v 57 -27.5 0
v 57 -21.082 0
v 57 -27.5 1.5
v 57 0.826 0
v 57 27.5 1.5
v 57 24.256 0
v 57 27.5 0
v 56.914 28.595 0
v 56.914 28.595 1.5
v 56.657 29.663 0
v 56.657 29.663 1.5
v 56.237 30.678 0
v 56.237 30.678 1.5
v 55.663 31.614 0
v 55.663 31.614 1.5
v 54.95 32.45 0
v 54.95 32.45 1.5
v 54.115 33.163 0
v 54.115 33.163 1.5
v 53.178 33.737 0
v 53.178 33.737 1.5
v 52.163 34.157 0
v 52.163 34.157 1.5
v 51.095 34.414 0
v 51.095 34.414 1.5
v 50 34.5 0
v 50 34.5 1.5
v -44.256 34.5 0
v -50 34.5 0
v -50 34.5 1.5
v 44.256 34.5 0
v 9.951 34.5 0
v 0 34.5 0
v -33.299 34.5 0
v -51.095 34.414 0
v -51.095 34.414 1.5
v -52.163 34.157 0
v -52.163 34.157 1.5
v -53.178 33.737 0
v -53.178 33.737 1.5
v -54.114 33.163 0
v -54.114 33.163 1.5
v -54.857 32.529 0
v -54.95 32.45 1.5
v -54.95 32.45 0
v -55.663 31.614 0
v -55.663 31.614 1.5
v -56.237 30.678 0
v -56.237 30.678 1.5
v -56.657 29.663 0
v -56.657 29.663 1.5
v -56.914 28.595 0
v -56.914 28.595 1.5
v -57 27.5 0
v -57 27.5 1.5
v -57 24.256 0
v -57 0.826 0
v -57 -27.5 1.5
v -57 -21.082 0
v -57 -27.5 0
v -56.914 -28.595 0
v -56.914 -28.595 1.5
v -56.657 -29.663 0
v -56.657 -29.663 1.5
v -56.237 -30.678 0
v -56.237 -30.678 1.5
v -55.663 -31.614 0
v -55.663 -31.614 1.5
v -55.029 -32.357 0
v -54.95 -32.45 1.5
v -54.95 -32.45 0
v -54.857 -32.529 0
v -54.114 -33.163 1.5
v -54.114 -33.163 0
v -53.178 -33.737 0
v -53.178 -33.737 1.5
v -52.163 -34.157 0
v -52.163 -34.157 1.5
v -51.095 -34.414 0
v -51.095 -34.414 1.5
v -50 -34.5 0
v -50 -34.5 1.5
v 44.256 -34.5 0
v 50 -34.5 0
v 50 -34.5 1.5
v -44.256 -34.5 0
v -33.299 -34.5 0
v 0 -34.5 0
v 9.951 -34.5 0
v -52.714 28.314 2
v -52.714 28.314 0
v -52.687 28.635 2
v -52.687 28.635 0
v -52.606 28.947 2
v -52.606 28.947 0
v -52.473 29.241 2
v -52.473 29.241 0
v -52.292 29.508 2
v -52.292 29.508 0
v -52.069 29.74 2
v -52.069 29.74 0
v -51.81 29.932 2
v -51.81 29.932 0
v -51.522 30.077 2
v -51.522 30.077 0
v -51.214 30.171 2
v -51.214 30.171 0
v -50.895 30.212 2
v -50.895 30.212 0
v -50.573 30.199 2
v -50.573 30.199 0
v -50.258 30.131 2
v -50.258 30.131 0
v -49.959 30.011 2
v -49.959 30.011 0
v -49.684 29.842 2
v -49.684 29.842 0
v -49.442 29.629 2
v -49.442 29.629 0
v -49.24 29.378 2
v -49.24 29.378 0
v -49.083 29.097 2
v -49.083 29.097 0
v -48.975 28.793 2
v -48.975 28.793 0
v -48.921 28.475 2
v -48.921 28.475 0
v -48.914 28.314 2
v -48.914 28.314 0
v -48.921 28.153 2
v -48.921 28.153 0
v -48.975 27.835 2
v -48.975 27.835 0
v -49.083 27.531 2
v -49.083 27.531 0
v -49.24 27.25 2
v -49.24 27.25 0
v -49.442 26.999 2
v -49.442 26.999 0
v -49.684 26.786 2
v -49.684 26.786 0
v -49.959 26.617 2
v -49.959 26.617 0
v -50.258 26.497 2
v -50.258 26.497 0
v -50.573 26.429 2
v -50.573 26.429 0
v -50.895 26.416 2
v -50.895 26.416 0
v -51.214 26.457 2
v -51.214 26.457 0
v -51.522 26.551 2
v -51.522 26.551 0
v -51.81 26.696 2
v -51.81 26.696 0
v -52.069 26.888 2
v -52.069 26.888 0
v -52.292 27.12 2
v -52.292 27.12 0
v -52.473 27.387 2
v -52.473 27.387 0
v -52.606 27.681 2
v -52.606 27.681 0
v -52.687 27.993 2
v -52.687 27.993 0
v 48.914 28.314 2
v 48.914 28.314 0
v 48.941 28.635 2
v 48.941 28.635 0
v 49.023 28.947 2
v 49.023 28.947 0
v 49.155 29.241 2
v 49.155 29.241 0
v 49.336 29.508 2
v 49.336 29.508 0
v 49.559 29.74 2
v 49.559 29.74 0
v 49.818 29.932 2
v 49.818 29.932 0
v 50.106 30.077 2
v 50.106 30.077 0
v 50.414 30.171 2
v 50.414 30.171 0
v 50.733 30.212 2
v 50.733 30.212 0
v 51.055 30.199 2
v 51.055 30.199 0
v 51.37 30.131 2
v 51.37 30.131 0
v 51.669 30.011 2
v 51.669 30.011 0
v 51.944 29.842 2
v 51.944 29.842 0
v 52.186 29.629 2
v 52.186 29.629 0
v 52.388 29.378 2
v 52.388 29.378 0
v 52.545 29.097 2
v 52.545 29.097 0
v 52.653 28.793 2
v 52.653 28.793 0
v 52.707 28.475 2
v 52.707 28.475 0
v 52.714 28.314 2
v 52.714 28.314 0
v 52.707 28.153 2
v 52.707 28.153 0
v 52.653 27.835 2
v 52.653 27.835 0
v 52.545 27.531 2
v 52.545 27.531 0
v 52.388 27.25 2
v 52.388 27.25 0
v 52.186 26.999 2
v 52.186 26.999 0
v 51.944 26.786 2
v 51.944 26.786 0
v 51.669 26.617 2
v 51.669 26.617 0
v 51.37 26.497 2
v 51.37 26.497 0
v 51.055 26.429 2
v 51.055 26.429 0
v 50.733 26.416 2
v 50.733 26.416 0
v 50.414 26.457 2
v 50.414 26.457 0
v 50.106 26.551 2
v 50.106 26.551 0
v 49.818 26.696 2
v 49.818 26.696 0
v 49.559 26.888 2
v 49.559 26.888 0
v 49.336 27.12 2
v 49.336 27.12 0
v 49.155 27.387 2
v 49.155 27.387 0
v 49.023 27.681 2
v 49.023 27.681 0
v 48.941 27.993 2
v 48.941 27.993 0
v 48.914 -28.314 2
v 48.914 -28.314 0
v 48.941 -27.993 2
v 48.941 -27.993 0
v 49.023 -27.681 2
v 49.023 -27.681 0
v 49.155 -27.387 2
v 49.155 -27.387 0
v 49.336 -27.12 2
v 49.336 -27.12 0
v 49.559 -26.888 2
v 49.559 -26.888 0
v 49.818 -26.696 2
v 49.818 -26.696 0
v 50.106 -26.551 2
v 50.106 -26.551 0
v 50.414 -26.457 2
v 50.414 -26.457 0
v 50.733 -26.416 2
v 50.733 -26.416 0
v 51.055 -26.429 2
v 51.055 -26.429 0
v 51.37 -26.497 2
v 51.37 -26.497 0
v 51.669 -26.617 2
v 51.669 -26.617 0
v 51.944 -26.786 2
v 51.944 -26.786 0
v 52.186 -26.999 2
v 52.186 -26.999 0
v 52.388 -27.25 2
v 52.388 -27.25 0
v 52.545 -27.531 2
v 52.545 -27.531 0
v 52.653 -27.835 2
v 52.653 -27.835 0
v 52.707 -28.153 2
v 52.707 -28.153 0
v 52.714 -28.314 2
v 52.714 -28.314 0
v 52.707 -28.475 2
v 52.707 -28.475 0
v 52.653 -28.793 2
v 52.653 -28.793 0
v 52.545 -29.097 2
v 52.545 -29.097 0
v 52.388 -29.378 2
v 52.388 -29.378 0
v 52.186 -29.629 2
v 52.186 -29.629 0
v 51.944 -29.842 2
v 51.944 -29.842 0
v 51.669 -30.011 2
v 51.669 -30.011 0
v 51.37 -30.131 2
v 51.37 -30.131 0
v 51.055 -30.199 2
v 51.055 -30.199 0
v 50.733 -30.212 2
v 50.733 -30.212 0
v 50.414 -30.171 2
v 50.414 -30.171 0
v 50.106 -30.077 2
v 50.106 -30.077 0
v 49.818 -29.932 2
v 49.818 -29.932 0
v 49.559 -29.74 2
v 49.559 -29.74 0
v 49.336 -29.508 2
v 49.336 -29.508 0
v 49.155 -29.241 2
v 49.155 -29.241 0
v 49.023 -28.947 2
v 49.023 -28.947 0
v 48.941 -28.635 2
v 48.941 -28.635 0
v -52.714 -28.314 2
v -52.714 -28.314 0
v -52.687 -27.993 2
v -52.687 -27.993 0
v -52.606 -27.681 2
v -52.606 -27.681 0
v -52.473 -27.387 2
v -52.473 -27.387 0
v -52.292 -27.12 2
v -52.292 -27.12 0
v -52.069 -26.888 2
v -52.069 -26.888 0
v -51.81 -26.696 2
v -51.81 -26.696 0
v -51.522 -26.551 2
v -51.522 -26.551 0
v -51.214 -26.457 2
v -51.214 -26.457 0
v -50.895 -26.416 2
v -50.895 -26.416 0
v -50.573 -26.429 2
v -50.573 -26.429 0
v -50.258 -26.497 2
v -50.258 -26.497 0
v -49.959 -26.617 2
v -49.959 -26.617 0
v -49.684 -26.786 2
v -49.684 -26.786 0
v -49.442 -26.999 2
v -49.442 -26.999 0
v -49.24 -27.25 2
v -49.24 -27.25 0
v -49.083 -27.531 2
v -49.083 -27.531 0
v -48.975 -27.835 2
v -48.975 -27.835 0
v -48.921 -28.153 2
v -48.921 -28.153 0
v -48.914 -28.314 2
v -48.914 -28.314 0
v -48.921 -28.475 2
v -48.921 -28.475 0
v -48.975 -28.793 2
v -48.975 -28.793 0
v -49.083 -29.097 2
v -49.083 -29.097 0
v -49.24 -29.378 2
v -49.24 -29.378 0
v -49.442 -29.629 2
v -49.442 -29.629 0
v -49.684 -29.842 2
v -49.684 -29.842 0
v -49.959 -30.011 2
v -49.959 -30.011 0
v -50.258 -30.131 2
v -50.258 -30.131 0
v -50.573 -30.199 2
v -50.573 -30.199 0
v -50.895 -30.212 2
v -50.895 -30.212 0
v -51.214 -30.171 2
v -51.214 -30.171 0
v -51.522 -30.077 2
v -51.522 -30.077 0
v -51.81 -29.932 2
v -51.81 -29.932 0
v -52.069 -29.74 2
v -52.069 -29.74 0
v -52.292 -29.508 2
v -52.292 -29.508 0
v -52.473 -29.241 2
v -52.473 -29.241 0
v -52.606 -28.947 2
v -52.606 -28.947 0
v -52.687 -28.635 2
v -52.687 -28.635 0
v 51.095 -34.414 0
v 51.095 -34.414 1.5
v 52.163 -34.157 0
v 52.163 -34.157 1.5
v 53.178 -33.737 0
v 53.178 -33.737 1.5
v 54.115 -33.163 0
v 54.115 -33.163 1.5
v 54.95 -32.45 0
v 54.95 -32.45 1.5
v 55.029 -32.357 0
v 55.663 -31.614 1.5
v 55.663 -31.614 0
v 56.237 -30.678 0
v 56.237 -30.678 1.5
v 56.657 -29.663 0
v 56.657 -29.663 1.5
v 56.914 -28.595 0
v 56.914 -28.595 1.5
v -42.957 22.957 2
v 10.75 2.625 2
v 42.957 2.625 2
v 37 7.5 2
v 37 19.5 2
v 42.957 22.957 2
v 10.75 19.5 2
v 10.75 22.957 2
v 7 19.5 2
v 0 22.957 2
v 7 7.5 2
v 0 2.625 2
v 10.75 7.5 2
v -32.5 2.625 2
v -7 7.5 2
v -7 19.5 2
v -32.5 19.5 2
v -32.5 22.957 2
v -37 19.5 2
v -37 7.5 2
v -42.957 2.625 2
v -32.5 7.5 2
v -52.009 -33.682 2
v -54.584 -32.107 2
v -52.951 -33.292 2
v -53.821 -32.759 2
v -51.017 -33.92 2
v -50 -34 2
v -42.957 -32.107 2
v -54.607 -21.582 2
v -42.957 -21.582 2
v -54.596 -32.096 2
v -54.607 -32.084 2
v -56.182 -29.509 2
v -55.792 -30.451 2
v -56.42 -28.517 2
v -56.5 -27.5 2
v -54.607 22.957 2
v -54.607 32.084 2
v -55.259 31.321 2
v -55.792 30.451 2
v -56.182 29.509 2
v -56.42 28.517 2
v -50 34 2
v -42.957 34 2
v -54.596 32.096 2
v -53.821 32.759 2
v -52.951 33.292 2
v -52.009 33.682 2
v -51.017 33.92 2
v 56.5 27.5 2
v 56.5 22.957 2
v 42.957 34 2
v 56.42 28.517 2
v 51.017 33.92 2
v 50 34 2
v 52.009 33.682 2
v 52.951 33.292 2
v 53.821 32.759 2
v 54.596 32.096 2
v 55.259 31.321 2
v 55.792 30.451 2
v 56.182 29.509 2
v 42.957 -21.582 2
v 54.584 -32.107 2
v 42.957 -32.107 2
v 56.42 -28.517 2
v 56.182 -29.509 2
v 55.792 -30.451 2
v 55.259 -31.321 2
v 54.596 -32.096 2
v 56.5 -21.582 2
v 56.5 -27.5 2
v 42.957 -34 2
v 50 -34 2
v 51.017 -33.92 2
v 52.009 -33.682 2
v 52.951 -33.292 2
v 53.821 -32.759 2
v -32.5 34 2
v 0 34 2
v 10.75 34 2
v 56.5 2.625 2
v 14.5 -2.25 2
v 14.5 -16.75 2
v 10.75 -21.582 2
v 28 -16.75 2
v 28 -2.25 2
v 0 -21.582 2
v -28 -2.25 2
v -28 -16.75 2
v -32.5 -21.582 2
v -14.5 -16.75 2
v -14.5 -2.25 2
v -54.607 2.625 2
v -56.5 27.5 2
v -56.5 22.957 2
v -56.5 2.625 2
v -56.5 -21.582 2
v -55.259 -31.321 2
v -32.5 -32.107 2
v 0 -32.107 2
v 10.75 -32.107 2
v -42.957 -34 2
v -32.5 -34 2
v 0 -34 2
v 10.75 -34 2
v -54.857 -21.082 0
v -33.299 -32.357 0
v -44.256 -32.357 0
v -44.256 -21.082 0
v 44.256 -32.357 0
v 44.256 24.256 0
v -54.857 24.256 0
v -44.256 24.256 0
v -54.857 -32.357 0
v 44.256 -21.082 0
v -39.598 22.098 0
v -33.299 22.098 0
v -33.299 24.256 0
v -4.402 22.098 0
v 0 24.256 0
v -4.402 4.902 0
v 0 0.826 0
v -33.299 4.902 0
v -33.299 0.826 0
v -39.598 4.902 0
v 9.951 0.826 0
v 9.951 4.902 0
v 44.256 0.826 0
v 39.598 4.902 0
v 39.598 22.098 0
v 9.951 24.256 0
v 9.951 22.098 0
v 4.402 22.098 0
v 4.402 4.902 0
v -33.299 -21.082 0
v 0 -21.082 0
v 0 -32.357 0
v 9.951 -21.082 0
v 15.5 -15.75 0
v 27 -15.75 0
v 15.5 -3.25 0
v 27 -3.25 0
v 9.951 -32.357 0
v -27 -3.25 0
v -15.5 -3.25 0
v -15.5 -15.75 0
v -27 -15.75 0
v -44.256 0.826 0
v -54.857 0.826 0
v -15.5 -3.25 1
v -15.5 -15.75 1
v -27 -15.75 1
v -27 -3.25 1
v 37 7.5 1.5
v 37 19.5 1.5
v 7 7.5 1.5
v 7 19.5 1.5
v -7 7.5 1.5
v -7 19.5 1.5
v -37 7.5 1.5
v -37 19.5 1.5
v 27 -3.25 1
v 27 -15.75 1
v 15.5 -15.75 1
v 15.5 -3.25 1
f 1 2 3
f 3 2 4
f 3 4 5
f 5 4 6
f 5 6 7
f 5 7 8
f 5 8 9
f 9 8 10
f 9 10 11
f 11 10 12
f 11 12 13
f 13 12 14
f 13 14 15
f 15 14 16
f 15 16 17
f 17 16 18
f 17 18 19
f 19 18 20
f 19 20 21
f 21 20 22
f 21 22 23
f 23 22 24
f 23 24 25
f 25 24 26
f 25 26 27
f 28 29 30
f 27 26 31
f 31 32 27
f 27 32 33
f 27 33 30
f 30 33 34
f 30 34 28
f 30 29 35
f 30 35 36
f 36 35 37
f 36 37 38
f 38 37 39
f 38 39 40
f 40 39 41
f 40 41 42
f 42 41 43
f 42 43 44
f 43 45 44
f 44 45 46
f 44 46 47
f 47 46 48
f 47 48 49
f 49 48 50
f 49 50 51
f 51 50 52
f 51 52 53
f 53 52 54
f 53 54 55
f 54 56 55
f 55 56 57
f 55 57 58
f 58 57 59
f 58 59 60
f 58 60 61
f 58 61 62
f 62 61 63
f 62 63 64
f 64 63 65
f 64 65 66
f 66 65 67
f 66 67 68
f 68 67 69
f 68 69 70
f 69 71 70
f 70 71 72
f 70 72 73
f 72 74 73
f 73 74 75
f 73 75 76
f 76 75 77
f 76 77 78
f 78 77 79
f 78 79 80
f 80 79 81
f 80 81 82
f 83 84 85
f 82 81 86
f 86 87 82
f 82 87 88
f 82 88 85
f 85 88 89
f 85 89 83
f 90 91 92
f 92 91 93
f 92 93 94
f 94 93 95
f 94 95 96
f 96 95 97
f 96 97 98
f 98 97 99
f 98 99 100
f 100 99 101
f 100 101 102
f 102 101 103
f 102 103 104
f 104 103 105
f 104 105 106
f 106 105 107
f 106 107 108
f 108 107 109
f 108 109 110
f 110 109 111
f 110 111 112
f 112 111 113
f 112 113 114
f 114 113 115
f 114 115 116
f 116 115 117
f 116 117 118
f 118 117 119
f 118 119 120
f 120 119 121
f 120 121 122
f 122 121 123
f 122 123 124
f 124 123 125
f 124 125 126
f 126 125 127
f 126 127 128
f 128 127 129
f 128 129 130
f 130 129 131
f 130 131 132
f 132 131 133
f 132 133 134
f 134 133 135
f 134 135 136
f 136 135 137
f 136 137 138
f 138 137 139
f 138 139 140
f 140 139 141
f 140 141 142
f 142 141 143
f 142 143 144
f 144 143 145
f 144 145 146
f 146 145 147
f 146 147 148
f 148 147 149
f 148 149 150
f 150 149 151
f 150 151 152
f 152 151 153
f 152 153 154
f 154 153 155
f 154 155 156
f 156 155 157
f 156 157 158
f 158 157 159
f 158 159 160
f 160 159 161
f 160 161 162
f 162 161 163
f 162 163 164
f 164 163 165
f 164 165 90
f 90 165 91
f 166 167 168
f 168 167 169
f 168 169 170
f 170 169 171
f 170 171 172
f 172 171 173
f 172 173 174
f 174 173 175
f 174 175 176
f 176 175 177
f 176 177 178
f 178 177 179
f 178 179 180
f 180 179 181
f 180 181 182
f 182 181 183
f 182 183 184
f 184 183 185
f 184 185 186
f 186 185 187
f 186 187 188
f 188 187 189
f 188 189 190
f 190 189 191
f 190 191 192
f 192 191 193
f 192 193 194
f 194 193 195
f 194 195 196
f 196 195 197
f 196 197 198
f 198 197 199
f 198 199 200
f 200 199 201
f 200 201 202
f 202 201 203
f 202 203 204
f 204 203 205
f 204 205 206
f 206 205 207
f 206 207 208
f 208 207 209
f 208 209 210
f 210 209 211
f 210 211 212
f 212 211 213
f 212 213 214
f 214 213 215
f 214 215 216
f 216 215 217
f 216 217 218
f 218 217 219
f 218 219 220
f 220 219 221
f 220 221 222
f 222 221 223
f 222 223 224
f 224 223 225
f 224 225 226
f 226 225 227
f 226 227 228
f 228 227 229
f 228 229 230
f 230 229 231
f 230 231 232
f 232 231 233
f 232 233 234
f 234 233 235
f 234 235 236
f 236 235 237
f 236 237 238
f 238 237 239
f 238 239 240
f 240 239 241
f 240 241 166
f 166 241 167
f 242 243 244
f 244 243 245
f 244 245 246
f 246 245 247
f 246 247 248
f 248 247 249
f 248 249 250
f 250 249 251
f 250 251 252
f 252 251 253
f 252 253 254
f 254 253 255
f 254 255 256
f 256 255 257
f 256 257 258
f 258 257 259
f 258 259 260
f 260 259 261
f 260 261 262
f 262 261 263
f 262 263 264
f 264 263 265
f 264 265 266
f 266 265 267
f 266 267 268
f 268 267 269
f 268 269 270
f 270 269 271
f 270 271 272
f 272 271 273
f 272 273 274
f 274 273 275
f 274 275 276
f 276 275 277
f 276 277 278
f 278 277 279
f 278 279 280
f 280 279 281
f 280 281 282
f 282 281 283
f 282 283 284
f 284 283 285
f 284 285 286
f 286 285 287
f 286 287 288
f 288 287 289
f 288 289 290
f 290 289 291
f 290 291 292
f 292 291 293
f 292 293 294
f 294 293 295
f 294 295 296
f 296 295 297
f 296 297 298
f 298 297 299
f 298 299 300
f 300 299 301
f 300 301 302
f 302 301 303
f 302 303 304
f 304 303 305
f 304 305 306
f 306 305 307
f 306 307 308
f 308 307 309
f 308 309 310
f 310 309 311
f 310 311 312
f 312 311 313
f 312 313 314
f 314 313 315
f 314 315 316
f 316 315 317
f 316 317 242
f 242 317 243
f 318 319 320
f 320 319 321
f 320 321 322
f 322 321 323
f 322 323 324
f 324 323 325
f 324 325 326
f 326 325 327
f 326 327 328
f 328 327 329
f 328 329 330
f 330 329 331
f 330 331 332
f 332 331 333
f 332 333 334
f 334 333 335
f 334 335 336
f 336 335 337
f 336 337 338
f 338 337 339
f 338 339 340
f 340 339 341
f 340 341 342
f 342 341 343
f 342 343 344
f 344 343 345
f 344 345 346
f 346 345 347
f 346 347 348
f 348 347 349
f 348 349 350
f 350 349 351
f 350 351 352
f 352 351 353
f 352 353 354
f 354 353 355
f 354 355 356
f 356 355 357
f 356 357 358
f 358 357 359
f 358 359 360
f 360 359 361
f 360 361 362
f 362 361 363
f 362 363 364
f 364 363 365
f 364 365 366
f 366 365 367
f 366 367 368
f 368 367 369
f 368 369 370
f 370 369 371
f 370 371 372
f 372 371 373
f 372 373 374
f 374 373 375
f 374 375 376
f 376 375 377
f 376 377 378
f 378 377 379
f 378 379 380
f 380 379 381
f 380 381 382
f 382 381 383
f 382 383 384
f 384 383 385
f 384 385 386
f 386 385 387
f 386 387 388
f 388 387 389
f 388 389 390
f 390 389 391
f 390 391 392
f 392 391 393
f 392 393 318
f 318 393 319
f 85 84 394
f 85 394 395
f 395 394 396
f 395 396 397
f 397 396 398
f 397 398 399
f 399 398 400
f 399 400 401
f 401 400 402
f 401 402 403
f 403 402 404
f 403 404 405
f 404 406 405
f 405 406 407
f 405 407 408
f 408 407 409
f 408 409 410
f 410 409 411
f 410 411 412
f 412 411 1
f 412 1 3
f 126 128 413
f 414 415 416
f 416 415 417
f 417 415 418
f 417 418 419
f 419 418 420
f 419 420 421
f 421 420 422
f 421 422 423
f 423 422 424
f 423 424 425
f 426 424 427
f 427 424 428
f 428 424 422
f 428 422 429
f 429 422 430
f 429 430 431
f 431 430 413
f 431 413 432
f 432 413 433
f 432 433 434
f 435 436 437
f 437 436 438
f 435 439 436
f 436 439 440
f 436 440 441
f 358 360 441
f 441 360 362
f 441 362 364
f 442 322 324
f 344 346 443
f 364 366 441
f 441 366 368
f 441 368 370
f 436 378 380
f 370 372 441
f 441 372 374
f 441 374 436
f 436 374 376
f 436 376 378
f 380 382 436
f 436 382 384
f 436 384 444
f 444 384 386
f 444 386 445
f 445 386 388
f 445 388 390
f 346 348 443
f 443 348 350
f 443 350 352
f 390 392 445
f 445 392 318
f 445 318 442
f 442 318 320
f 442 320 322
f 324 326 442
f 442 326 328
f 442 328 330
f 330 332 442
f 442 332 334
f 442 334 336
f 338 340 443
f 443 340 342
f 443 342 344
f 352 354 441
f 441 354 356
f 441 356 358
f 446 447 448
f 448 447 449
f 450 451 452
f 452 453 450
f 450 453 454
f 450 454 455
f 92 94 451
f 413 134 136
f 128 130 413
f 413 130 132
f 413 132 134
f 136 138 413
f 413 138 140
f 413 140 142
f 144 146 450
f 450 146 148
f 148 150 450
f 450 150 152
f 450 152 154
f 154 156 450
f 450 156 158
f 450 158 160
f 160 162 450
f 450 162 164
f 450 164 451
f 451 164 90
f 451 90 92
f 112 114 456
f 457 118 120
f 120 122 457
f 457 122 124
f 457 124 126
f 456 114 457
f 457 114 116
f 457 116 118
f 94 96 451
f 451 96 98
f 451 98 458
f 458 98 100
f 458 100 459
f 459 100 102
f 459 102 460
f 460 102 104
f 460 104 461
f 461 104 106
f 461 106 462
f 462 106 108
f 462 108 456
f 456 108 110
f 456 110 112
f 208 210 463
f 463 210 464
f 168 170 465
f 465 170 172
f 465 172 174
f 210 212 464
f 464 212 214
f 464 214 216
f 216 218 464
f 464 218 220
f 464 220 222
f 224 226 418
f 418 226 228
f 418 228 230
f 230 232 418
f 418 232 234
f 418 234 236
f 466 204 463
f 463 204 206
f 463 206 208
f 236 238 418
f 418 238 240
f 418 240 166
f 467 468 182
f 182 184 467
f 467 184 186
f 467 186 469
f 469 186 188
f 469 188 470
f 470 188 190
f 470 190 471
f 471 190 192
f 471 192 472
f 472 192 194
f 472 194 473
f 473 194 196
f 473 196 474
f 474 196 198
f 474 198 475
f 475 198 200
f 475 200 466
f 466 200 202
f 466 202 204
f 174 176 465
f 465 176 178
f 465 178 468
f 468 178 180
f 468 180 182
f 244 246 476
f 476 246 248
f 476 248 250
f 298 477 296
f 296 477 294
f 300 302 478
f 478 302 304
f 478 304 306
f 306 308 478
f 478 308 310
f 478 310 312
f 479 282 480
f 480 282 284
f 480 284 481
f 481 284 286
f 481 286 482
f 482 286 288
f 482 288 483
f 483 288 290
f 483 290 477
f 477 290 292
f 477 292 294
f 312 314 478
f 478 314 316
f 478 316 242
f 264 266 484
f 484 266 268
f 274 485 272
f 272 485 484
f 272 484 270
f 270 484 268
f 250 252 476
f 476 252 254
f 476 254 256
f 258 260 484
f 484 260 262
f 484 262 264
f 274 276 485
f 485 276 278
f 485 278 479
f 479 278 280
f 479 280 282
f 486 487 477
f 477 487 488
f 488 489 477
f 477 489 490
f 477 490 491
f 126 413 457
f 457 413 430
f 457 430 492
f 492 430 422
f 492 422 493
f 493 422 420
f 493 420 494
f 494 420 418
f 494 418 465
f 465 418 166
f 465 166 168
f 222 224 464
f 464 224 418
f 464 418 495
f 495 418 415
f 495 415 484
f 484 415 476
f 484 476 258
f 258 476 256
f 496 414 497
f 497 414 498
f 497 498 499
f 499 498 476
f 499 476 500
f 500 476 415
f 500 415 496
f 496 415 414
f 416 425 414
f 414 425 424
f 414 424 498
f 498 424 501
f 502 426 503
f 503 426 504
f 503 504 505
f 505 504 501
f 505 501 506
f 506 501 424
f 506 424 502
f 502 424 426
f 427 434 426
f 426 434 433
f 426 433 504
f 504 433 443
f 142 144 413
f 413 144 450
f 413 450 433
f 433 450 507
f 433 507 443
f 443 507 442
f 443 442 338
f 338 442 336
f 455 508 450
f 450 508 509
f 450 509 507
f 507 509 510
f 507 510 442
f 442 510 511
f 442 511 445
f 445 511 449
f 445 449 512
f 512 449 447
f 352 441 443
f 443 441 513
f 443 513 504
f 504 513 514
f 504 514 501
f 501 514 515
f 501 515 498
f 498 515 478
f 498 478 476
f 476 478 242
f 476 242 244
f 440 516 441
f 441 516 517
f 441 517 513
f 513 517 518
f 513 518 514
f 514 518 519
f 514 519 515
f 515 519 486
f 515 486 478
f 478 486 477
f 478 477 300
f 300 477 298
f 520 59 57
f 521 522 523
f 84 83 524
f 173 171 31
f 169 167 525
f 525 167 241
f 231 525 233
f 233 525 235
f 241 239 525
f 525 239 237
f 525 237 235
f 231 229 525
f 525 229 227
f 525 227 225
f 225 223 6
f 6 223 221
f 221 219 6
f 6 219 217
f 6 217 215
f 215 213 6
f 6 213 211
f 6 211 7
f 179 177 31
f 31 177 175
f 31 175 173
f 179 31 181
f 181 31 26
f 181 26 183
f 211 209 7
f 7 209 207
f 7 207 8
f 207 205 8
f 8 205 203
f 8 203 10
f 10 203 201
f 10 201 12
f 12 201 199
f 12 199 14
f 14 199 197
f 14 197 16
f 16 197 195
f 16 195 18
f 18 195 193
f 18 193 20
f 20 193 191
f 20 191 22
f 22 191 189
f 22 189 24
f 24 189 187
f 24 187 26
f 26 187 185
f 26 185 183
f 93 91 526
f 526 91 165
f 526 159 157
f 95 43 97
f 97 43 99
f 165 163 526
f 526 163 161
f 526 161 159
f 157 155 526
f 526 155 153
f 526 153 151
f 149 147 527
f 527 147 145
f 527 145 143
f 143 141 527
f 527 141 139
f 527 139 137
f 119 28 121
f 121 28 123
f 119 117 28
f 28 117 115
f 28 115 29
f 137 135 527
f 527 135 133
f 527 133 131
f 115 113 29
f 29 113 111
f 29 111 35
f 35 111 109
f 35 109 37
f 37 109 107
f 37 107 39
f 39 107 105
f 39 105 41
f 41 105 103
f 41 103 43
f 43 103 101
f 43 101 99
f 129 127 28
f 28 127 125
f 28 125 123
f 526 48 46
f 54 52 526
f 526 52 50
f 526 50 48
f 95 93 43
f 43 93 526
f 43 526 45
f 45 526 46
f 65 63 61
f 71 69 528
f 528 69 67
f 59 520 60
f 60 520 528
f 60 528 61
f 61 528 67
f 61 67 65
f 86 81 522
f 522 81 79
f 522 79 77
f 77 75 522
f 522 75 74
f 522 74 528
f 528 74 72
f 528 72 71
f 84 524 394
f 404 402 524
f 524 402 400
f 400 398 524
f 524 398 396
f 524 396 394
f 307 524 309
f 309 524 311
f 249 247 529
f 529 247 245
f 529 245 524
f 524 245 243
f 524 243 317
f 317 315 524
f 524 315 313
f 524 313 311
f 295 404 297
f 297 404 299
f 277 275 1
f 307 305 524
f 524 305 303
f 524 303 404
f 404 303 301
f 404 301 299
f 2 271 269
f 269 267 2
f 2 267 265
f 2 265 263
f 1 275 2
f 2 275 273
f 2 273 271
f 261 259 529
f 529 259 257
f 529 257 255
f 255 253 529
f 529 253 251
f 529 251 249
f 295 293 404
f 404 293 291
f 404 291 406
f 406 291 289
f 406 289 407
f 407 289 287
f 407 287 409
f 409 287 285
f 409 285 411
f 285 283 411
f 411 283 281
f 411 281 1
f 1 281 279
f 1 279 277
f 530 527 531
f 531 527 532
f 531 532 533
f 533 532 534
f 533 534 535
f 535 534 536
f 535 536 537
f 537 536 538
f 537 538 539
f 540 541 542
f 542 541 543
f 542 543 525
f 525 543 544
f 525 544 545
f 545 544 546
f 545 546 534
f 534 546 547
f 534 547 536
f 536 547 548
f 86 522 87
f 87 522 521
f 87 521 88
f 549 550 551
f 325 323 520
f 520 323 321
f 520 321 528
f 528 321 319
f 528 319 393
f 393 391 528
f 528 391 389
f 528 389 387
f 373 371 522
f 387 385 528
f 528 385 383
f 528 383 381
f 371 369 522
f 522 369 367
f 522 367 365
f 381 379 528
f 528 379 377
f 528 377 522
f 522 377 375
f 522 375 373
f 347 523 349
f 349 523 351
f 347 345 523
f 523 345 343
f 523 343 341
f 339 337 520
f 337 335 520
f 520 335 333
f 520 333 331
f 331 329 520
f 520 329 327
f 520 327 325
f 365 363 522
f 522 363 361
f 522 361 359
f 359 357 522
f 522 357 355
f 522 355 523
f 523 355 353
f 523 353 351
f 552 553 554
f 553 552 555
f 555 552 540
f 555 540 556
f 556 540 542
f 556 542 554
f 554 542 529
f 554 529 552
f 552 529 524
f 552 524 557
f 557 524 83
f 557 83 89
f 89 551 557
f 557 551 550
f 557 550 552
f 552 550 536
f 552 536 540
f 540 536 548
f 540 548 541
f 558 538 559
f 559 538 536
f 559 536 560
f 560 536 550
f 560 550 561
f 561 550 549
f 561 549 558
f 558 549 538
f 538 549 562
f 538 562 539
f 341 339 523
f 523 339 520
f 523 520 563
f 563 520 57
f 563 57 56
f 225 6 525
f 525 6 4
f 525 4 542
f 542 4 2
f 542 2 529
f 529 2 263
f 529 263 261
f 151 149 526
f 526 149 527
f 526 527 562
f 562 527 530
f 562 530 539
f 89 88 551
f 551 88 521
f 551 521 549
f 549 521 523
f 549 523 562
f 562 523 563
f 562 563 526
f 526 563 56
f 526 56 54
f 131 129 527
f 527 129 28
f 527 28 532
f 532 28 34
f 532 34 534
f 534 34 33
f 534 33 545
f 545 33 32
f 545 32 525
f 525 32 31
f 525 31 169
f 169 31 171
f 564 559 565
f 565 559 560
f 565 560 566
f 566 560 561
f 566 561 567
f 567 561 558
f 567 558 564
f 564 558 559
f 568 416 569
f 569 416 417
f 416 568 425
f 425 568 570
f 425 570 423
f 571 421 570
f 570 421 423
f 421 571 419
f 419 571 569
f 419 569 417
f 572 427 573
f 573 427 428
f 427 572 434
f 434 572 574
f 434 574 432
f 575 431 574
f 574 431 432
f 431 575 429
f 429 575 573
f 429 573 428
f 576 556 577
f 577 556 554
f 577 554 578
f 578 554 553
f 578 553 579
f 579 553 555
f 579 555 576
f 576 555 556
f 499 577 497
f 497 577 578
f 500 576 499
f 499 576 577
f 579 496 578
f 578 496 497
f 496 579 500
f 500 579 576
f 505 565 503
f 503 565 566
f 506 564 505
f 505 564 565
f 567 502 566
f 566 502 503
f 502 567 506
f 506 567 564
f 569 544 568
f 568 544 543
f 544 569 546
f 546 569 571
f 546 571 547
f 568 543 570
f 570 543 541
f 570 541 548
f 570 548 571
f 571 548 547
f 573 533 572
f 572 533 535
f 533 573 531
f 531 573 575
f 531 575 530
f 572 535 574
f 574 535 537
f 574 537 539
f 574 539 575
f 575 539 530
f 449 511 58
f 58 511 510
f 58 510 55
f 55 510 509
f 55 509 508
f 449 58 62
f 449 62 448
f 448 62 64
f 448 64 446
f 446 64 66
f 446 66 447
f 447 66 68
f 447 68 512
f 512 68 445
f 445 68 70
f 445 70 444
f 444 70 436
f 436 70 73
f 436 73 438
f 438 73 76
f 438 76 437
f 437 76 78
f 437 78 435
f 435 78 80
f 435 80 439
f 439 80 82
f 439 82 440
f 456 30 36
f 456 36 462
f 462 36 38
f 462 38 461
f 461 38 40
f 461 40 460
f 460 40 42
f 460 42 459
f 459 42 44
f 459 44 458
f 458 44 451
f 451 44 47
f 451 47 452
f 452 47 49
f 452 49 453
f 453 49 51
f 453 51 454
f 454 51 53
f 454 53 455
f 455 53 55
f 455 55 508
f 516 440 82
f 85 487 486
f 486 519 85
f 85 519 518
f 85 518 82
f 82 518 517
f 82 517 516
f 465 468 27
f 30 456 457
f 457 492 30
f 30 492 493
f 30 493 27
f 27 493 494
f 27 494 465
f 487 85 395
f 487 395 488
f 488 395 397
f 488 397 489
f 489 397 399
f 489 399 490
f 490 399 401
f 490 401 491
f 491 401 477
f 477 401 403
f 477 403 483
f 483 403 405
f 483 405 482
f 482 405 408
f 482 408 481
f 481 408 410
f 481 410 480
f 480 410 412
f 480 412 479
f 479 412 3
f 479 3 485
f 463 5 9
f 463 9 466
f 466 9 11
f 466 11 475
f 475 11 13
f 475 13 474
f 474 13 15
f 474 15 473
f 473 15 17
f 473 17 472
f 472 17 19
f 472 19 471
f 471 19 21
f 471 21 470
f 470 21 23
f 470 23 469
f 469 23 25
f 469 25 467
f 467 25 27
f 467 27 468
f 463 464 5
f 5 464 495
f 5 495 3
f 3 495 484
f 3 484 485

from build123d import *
from OCP.BRepFilletAPI import BRepFilletAPI_MakeChamfer

# Parameters (mm, degrees)
SKETCH1_R           = 1.9
BOSS_EXTRUDE1_DEPTH = 2
SKETCH6_W           = 11.5
SKETCH6_H           = 12.5
SKETCH6_W_2         = 30
SKETCH6_H_2         = 12
CUT_EXTRUDE2_DEPTH  = 2
CHAMFER4_SIZE       = 1
CHAMFER5_SIZE       = 1.5
CHAMFER5_SIZE2      = 2.598076211
CHAMFER6_SIZE       = 0.5


with BuildPart() as part:
    # Sketch1 → Boss-Extrude1 (new body)
    with BuildSketch(Plane.XY):
        with BuildLine():
            Line((-57, 27.5), (-57, -27.5))
            ThreePointArc((-57, -27.5), (-54.949747468, -32.449747468), (-50, -34.5))
            Line((-50, -34.5), (50, -34.5))
            ThreePointArc((50, -34.5), (54.949747468, -32.449747468), (57, -27.5))
            Line((57, -27.5), (57, 27.5))
            ThreePointArc((57, 27.5), (54.949747468, 32.449747468), (50, 34.5))
            Line((50, 34.5), (-50, 34.5))
            ThreePointArc((-50, 34.5), (-54.949747468, 32.449747468), (-57, 27.5))
        make_face()
        with Locations((-50.814035536, 28.314035536)):
            Circle(SKETCH1_R, mode=Mode.SUBTRACT)
        with Locations((50.814035536, 28.314035536)):
            Circle(SKETCH1_R, mode=Mode.SUBTRACT)
        with Locations((50.814035536, -28.314035536)):
            Circle(SKETCH1_R, mode=Mode.SUBTRACT)
        with Locations((-50.814035536, -28.314035536)):
            Circle(SKETCH1_R, mode=Mode.SUBTRACT)
    extrude(amount=BOSS_EXTRUDE1_DEPTH)

    # Sketch6 → Cut-Extrude2 (cut)
    with BuildSketch(Plane.XY.offset(2)):
        with Locations((-21.25, -9.5)):
            Rectangle(SKETCH6_W, SKETCH6_H)
        with Locations((21.25, -9.5)):
            Rectangle(SKETCH6_W, SKETCH6_H)
        with Locations((-22, 13.5)):
            Rectangle(SKETCH6_W_2, SKETCH6_H_2)
        with Locations((22, 13.5)):
            Rectangle(SKETCH6_W_2, SKETCH6_H_2)
    extrude(amount=-CUT_EXTRUDE2_DEPTH, mode=Mode.SUBTRACT)

    # Chamfer4
    chamfer4_edges = [part.edges().sort_by_distance(p)[0] for p in [
        (27, -9.5, 2),
        (21.25, -3.25, 2),
        (15.5, -9.5, 2),
        (21.25, -15.75, 2),
        (-15.5, -9.5, 2),
        (-21.25, -3.25, 2),
        (-27, -9.5, 2),
        (-21.25, -15.75, 2),
    ]]
    chamfer(chamfer4_edges, length=CHAMFER4_SIZE)

    # Chamfer5: one chamfer whose edges measure the first distance from different faces: ONE call of the kernel's chamfer builder (chamfer() names one face for all edges)
    chamfer5_edges_1 = [part.edges().sort_by_distance(p)[0] for p in [
        (-7, 13.5, 0),
    ]]
    chamfer5_side_1 = [part.faces().sort_by_distance(p)[0] for p in [
        (-7, 13.5, 1),
    ]]
    chamfer5_edges_2 = [part.edges().sort_by_distance(p)[0] for p in [
        (-22, 7.5, 0),
    ]]
    chamfer5_side_2 = [part.faces().sort_by_distance(p)[0] for p in [
        (-22, 7.5, 1),
    ]]
    chamfer5_edges_3 = [part.edges().sort_by_distance(p)[0] for p in [
        (-37, 13.5, 0),
    ]]
    chamfer5_side_3 = [part.faces().sort_by_distance(p)[0] for p in [
        (-37, 13.5, 1),
    ]]
    chamfer5_edges_4 = [part.edges().sort_by_distance(p)[0] for p in [
        (-22, 19.5, 0),
    ]]
    chamfer5_side_4 = [part.faces().sort_by_distance(p)[0] for p in [
        (-22, 19.5, 1),
    ]]
    chamfer5_edges_5 = [part.edges().sort_by_distance(p)[0] for p in [
        (37, 13.5, 0),
    ]]
    chamfer5_side_5 = [part.faces().sort_by_distance(p)[0] for p in [
        (37, 13.5, 1),
    ]]
    chamfer5_edges_6 = [part.edges().sort_by_distance(p)[0] for p in [
        (22, 7.5, 0),
    ]]
    chamfer5_side_6 = [part.faces().sort_by_distance(p)[0] for p in [
        (22, 7.5, 1),
    ]]
    chamfer5_edges_7 = [part.edges().sort_by_distance(p)[0] for p in [
        (7, 13.5, 0),
    ]]
    chamfer5_side_7 = [part.faces().sort_by_distance(p)[0] for p in [
        (7, 13.5, 1),
    ]]
    chamfer5_edges_8 = [part.edges().sort_by_distance(p)[0] for p in [
        (22, 19.5, 0),
    ]]
    chamfer5_side_8 = [part.faces().sort_by_distance(p)[0] for p in [
        (22, 19.5, 1),
    ]]
    chamfer5 = BRepFilletAPI_MakeChamfer(part.part.solid().wrapped)
    for e in chamfer5_edges_1:
        chamfer5.Add(CHAMFER5_SIZE, CHAMFER5_SIZE2, e.wrapped, chamfer5_side_1[0].wrapped)  # the first distance lies on this face
    for e in chamfer5_edges_2:
        chamfer5.Add(CHAMFER5_SIZE, CHAMFER5_SIZE2, e.wrapped, chamfer5_side_2[0].wrapped)  # the first distance lies on this face
    for e in chamfer5_edges_3:
        chamfer5.Add(CHAMFER5_SIZE, CHAMFER5_SIZE2, e.wrapped, chamfer5_side_3[0].wrapped)  # the first distance lies on this face
    for e in chamfer5_edges_4:
        chamfer5.Add(CHAMFER5_SIZE, CHAMFER5_SIZE2, e.wrapped, chamfer5_side_4[0].wrapped)  # the first distance lies on this face
    for e in chamfer5_edges_5:
        chamfer5.Add(CHAMFER5_SIZE, CHAMFER5_SIZE2, e.wrapped, chamfer5_side_5[0].wrapped)  # the first distance lies on this face
    for e in chamfer5_edges_6:
        chamfer5.Add(CHAMFER5_SIZE, CHAMFER5_SIZE2, e.wrapped, chamfer5_side_6[0].wrapped)  # the first distance lies on this face
    for e in chamfer5_edges_7:
        chamfer5.Add(CHAMFER5_SIZE, CHAMFER5_SIZE2, e.wrapped, chamfer5_side_7[0].wrapped)  # the first distance lies on this face
    for e in chamfer5_edges_8:
        chamfer5.Add(CHAMFER5_SIZE, CHAMFER5_SIZE2, e.wrapped, chamfer5_side_8[0].wrapped)  # the first distance lies on this face
    add(Compound.cast(chamfer5.Shape()), mode=Mode.REPLACE)

    # Chamfer6
    chamfer6_edges = [part.edges().sort_by_distance(p)[0] for p in [
        (57, 0, 2),
        (54.949747468, 32.449747468, 2),
        (0, 34.5, 2),
        (-54.949747468, 32.449747468, 2),
        (-57, 0, 2),
        (-54.949747468, -32.449747468, 2),
        (0, -34.5, 2),
        (54.949747468, -32.449747468, 2),
    ]]
    chamfer(chamfer6_edges, length=CHAMFER6_SIZE)


solid = part.part
